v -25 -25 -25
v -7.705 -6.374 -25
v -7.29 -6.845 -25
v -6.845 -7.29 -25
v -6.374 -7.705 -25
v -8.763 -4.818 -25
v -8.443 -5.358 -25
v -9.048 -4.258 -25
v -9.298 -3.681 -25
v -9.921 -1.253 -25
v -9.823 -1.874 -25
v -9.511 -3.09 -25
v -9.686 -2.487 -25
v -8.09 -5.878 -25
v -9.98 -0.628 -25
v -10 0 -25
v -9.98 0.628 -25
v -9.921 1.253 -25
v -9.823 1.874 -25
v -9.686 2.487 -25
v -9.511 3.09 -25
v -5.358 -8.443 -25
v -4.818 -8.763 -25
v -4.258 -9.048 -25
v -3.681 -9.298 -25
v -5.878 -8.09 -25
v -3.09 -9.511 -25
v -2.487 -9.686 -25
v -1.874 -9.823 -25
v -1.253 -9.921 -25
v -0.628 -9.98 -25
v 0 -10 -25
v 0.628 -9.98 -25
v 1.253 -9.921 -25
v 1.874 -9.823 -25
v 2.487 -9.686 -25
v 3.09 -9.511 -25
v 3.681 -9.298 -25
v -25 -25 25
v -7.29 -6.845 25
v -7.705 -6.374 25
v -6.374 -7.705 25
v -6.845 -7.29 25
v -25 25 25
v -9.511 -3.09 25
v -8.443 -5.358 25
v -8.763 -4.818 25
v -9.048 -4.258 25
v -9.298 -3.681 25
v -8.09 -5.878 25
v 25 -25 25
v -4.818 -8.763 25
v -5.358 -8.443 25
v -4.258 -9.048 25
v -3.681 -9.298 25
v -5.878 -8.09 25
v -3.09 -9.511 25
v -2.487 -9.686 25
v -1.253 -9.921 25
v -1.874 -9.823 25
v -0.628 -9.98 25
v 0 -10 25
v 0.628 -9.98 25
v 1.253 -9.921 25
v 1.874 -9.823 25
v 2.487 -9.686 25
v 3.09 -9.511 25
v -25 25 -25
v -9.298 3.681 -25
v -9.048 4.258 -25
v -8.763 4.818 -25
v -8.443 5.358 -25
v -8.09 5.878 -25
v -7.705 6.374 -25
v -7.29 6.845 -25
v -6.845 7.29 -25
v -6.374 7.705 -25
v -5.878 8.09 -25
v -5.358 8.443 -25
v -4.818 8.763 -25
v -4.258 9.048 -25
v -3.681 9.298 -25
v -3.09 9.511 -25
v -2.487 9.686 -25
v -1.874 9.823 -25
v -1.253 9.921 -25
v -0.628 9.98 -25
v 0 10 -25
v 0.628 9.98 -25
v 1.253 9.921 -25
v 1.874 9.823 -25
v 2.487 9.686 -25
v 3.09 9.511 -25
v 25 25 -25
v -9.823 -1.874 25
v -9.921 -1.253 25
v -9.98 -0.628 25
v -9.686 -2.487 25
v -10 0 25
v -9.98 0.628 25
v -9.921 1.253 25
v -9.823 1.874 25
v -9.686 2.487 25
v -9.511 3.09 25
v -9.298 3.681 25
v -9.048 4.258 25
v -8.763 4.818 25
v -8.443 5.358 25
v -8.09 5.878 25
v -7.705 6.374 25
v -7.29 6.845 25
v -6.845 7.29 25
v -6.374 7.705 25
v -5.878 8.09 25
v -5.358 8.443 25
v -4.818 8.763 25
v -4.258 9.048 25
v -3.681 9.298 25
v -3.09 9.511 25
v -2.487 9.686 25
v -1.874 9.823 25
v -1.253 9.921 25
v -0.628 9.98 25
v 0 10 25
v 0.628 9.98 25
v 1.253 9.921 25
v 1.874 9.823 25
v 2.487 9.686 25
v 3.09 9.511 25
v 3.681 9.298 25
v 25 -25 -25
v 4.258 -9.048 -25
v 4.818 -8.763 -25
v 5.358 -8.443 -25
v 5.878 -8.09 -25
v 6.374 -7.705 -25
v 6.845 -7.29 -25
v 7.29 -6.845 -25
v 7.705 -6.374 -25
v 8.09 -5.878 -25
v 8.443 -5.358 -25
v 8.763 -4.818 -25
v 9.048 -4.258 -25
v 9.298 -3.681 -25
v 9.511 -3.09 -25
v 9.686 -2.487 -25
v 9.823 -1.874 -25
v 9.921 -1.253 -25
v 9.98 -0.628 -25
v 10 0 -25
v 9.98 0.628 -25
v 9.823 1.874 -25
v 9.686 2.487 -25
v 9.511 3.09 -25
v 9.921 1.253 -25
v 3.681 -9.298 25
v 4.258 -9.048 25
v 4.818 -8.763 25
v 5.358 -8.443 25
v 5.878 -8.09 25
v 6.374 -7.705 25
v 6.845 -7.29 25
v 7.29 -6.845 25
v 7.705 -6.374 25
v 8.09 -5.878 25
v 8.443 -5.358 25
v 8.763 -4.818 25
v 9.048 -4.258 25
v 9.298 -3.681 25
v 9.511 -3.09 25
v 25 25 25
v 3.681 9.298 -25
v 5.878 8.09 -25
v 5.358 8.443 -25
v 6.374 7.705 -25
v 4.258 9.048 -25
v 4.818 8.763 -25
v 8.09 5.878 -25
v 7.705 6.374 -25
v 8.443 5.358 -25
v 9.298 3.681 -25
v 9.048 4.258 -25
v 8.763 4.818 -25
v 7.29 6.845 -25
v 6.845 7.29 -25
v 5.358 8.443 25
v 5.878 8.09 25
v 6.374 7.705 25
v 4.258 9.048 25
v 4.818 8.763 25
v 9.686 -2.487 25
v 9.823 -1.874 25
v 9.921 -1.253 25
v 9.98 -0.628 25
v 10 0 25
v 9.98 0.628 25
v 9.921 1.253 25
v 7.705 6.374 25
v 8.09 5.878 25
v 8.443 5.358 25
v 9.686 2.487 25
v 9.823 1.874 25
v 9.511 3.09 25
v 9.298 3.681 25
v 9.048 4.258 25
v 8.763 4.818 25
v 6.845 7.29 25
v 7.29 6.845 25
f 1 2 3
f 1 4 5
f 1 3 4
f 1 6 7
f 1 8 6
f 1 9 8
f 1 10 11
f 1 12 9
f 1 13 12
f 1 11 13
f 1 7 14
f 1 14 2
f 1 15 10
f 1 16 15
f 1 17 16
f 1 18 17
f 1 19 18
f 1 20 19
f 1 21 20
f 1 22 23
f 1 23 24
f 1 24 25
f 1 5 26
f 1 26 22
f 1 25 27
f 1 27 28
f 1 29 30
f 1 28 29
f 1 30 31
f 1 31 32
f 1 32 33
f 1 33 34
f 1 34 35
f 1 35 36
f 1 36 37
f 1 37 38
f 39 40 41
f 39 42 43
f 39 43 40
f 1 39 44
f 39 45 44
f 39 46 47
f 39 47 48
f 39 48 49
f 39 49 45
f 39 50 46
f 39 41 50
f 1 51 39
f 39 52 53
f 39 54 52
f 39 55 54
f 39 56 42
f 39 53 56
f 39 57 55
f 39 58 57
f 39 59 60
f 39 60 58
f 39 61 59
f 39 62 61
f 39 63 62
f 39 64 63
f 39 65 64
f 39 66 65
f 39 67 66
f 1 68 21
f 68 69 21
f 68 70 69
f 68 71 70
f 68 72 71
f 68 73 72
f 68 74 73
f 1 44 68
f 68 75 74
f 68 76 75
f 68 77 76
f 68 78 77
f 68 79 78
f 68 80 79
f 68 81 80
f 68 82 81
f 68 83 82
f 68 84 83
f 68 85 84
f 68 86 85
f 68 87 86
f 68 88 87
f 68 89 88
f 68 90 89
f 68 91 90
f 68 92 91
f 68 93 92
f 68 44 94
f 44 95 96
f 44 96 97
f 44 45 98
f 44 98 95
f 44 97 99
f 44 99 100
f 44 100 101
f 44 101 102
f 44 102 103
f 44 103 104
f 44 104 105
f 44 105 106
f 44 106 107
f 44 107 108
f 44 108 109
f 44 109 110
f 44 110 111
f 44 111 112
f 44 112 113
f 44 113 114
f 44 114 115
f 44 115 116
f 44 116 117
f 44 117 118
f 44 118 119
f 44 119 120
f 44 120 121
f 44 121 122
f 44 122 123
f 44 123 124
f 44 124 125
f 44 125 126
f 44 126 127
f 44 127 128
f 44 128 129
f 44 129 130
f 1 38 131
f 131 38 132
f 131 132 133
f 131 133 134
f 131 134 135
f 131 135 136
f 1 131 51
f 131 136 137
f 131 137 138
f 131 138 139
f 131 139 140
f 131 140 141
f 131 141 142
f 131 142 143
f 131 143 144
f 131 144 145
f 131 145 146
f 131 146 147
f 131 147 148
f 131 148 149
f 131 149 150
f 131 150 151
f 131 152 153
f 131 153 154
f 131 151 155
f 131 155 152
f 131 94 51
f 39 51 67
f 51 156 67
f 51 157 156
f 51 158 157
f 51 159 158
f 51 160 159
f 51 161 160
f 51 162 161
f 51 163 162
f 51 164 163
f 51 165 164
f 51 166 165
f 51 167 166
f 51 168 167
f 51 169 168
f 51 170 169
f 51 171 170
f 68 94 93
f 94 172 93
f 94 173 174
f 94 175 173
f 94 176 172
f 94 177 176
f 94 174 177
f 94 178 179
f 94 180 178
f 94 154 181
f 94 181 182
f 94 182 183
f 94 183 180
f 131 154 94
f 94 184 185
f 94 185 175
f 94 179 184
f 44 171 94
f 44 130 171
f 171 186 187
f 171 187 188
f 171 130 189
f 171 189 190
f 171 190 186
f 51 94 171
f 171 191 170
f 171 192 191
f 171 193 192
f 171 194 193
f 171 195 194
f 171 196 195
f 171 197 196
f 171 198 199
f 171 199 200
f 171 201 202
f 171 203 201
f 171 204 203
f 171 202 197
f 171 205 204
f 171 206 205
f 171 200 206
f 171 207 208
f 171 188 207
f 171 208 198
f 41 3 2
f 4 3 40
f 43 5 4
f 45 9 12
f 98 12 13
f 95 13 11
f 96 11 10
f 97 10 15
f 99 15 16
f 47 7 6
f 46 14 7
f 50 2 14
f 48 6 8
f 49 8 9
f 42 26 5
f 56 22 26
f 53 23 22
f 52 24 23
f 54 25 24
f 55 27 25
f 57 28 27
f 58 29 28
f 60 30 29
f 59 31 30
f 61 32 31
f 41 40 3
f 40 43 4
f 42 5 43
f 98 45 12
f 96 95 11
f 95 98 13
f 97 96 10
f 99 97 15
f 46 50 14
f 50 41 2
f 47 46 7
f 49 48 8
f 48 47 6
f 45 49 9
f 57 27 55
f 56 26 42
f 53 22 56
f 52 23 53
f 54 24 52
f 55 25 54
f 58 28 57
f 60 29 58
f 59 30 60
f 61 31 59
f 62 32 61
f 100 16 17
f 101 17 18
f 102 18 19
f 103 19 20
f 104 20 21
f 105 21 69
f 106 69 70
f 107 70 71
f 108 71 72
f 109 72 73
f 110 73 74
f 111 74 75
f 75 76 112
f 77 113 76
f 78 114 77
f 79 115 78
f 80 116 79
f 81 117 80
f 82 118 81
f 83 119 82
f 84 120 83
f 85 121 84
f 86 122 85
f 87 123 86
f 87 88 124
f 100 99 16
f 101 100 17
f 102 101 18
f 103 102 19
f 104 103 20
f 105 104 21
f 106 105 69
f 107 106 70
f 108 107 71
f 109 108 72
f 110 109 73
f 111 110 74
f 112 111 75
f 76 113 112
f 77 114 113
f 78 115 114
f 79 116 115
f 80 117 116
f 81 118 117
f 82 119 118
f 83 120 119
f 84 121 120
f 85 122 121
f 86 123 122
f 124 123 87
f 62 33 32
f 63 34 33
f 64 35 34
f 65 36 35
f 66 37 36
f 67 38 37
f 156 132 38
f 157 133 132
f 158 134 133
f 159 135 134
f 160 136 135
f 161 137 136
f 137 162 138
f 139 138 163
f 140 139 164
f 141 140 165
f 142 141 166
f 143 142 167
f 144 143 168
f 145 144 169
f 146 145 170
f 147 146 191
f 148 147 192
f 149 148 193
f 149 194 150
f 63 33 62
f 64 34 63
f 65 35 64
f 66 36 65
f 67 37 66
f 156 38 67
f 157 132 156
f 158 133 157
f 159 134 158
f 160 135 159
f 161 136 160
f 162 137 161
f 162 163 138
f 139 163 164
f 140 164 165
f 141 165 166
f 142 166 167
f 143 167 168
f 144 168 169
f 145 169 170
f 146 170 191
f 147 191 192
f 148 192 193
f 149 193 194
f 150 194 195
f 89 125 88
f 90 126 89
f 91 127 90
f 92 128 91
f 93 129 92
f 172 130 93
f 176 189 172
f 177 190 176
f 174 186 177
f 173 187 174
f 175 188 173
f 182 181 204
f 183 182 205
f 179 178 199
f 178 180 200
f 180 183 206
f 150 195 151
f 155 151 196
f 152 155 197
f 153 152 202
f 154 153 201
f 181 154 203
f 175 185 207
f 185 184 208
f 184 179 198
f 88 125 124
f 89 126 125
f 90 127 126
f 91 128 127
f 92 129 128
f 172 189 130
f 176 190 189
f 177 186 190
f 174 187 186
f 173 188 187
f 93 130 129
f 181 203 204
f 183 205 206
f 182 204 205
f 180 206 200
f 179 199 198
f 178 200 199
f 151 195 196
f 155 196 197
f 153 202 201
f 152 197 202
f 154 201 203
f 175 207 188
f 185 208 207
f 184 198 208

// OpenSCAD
$fn = 100;
difference() {
    cube([50, 50, 50], center = true);
    cylinder(h = 51, d = 20, center = true);
}
